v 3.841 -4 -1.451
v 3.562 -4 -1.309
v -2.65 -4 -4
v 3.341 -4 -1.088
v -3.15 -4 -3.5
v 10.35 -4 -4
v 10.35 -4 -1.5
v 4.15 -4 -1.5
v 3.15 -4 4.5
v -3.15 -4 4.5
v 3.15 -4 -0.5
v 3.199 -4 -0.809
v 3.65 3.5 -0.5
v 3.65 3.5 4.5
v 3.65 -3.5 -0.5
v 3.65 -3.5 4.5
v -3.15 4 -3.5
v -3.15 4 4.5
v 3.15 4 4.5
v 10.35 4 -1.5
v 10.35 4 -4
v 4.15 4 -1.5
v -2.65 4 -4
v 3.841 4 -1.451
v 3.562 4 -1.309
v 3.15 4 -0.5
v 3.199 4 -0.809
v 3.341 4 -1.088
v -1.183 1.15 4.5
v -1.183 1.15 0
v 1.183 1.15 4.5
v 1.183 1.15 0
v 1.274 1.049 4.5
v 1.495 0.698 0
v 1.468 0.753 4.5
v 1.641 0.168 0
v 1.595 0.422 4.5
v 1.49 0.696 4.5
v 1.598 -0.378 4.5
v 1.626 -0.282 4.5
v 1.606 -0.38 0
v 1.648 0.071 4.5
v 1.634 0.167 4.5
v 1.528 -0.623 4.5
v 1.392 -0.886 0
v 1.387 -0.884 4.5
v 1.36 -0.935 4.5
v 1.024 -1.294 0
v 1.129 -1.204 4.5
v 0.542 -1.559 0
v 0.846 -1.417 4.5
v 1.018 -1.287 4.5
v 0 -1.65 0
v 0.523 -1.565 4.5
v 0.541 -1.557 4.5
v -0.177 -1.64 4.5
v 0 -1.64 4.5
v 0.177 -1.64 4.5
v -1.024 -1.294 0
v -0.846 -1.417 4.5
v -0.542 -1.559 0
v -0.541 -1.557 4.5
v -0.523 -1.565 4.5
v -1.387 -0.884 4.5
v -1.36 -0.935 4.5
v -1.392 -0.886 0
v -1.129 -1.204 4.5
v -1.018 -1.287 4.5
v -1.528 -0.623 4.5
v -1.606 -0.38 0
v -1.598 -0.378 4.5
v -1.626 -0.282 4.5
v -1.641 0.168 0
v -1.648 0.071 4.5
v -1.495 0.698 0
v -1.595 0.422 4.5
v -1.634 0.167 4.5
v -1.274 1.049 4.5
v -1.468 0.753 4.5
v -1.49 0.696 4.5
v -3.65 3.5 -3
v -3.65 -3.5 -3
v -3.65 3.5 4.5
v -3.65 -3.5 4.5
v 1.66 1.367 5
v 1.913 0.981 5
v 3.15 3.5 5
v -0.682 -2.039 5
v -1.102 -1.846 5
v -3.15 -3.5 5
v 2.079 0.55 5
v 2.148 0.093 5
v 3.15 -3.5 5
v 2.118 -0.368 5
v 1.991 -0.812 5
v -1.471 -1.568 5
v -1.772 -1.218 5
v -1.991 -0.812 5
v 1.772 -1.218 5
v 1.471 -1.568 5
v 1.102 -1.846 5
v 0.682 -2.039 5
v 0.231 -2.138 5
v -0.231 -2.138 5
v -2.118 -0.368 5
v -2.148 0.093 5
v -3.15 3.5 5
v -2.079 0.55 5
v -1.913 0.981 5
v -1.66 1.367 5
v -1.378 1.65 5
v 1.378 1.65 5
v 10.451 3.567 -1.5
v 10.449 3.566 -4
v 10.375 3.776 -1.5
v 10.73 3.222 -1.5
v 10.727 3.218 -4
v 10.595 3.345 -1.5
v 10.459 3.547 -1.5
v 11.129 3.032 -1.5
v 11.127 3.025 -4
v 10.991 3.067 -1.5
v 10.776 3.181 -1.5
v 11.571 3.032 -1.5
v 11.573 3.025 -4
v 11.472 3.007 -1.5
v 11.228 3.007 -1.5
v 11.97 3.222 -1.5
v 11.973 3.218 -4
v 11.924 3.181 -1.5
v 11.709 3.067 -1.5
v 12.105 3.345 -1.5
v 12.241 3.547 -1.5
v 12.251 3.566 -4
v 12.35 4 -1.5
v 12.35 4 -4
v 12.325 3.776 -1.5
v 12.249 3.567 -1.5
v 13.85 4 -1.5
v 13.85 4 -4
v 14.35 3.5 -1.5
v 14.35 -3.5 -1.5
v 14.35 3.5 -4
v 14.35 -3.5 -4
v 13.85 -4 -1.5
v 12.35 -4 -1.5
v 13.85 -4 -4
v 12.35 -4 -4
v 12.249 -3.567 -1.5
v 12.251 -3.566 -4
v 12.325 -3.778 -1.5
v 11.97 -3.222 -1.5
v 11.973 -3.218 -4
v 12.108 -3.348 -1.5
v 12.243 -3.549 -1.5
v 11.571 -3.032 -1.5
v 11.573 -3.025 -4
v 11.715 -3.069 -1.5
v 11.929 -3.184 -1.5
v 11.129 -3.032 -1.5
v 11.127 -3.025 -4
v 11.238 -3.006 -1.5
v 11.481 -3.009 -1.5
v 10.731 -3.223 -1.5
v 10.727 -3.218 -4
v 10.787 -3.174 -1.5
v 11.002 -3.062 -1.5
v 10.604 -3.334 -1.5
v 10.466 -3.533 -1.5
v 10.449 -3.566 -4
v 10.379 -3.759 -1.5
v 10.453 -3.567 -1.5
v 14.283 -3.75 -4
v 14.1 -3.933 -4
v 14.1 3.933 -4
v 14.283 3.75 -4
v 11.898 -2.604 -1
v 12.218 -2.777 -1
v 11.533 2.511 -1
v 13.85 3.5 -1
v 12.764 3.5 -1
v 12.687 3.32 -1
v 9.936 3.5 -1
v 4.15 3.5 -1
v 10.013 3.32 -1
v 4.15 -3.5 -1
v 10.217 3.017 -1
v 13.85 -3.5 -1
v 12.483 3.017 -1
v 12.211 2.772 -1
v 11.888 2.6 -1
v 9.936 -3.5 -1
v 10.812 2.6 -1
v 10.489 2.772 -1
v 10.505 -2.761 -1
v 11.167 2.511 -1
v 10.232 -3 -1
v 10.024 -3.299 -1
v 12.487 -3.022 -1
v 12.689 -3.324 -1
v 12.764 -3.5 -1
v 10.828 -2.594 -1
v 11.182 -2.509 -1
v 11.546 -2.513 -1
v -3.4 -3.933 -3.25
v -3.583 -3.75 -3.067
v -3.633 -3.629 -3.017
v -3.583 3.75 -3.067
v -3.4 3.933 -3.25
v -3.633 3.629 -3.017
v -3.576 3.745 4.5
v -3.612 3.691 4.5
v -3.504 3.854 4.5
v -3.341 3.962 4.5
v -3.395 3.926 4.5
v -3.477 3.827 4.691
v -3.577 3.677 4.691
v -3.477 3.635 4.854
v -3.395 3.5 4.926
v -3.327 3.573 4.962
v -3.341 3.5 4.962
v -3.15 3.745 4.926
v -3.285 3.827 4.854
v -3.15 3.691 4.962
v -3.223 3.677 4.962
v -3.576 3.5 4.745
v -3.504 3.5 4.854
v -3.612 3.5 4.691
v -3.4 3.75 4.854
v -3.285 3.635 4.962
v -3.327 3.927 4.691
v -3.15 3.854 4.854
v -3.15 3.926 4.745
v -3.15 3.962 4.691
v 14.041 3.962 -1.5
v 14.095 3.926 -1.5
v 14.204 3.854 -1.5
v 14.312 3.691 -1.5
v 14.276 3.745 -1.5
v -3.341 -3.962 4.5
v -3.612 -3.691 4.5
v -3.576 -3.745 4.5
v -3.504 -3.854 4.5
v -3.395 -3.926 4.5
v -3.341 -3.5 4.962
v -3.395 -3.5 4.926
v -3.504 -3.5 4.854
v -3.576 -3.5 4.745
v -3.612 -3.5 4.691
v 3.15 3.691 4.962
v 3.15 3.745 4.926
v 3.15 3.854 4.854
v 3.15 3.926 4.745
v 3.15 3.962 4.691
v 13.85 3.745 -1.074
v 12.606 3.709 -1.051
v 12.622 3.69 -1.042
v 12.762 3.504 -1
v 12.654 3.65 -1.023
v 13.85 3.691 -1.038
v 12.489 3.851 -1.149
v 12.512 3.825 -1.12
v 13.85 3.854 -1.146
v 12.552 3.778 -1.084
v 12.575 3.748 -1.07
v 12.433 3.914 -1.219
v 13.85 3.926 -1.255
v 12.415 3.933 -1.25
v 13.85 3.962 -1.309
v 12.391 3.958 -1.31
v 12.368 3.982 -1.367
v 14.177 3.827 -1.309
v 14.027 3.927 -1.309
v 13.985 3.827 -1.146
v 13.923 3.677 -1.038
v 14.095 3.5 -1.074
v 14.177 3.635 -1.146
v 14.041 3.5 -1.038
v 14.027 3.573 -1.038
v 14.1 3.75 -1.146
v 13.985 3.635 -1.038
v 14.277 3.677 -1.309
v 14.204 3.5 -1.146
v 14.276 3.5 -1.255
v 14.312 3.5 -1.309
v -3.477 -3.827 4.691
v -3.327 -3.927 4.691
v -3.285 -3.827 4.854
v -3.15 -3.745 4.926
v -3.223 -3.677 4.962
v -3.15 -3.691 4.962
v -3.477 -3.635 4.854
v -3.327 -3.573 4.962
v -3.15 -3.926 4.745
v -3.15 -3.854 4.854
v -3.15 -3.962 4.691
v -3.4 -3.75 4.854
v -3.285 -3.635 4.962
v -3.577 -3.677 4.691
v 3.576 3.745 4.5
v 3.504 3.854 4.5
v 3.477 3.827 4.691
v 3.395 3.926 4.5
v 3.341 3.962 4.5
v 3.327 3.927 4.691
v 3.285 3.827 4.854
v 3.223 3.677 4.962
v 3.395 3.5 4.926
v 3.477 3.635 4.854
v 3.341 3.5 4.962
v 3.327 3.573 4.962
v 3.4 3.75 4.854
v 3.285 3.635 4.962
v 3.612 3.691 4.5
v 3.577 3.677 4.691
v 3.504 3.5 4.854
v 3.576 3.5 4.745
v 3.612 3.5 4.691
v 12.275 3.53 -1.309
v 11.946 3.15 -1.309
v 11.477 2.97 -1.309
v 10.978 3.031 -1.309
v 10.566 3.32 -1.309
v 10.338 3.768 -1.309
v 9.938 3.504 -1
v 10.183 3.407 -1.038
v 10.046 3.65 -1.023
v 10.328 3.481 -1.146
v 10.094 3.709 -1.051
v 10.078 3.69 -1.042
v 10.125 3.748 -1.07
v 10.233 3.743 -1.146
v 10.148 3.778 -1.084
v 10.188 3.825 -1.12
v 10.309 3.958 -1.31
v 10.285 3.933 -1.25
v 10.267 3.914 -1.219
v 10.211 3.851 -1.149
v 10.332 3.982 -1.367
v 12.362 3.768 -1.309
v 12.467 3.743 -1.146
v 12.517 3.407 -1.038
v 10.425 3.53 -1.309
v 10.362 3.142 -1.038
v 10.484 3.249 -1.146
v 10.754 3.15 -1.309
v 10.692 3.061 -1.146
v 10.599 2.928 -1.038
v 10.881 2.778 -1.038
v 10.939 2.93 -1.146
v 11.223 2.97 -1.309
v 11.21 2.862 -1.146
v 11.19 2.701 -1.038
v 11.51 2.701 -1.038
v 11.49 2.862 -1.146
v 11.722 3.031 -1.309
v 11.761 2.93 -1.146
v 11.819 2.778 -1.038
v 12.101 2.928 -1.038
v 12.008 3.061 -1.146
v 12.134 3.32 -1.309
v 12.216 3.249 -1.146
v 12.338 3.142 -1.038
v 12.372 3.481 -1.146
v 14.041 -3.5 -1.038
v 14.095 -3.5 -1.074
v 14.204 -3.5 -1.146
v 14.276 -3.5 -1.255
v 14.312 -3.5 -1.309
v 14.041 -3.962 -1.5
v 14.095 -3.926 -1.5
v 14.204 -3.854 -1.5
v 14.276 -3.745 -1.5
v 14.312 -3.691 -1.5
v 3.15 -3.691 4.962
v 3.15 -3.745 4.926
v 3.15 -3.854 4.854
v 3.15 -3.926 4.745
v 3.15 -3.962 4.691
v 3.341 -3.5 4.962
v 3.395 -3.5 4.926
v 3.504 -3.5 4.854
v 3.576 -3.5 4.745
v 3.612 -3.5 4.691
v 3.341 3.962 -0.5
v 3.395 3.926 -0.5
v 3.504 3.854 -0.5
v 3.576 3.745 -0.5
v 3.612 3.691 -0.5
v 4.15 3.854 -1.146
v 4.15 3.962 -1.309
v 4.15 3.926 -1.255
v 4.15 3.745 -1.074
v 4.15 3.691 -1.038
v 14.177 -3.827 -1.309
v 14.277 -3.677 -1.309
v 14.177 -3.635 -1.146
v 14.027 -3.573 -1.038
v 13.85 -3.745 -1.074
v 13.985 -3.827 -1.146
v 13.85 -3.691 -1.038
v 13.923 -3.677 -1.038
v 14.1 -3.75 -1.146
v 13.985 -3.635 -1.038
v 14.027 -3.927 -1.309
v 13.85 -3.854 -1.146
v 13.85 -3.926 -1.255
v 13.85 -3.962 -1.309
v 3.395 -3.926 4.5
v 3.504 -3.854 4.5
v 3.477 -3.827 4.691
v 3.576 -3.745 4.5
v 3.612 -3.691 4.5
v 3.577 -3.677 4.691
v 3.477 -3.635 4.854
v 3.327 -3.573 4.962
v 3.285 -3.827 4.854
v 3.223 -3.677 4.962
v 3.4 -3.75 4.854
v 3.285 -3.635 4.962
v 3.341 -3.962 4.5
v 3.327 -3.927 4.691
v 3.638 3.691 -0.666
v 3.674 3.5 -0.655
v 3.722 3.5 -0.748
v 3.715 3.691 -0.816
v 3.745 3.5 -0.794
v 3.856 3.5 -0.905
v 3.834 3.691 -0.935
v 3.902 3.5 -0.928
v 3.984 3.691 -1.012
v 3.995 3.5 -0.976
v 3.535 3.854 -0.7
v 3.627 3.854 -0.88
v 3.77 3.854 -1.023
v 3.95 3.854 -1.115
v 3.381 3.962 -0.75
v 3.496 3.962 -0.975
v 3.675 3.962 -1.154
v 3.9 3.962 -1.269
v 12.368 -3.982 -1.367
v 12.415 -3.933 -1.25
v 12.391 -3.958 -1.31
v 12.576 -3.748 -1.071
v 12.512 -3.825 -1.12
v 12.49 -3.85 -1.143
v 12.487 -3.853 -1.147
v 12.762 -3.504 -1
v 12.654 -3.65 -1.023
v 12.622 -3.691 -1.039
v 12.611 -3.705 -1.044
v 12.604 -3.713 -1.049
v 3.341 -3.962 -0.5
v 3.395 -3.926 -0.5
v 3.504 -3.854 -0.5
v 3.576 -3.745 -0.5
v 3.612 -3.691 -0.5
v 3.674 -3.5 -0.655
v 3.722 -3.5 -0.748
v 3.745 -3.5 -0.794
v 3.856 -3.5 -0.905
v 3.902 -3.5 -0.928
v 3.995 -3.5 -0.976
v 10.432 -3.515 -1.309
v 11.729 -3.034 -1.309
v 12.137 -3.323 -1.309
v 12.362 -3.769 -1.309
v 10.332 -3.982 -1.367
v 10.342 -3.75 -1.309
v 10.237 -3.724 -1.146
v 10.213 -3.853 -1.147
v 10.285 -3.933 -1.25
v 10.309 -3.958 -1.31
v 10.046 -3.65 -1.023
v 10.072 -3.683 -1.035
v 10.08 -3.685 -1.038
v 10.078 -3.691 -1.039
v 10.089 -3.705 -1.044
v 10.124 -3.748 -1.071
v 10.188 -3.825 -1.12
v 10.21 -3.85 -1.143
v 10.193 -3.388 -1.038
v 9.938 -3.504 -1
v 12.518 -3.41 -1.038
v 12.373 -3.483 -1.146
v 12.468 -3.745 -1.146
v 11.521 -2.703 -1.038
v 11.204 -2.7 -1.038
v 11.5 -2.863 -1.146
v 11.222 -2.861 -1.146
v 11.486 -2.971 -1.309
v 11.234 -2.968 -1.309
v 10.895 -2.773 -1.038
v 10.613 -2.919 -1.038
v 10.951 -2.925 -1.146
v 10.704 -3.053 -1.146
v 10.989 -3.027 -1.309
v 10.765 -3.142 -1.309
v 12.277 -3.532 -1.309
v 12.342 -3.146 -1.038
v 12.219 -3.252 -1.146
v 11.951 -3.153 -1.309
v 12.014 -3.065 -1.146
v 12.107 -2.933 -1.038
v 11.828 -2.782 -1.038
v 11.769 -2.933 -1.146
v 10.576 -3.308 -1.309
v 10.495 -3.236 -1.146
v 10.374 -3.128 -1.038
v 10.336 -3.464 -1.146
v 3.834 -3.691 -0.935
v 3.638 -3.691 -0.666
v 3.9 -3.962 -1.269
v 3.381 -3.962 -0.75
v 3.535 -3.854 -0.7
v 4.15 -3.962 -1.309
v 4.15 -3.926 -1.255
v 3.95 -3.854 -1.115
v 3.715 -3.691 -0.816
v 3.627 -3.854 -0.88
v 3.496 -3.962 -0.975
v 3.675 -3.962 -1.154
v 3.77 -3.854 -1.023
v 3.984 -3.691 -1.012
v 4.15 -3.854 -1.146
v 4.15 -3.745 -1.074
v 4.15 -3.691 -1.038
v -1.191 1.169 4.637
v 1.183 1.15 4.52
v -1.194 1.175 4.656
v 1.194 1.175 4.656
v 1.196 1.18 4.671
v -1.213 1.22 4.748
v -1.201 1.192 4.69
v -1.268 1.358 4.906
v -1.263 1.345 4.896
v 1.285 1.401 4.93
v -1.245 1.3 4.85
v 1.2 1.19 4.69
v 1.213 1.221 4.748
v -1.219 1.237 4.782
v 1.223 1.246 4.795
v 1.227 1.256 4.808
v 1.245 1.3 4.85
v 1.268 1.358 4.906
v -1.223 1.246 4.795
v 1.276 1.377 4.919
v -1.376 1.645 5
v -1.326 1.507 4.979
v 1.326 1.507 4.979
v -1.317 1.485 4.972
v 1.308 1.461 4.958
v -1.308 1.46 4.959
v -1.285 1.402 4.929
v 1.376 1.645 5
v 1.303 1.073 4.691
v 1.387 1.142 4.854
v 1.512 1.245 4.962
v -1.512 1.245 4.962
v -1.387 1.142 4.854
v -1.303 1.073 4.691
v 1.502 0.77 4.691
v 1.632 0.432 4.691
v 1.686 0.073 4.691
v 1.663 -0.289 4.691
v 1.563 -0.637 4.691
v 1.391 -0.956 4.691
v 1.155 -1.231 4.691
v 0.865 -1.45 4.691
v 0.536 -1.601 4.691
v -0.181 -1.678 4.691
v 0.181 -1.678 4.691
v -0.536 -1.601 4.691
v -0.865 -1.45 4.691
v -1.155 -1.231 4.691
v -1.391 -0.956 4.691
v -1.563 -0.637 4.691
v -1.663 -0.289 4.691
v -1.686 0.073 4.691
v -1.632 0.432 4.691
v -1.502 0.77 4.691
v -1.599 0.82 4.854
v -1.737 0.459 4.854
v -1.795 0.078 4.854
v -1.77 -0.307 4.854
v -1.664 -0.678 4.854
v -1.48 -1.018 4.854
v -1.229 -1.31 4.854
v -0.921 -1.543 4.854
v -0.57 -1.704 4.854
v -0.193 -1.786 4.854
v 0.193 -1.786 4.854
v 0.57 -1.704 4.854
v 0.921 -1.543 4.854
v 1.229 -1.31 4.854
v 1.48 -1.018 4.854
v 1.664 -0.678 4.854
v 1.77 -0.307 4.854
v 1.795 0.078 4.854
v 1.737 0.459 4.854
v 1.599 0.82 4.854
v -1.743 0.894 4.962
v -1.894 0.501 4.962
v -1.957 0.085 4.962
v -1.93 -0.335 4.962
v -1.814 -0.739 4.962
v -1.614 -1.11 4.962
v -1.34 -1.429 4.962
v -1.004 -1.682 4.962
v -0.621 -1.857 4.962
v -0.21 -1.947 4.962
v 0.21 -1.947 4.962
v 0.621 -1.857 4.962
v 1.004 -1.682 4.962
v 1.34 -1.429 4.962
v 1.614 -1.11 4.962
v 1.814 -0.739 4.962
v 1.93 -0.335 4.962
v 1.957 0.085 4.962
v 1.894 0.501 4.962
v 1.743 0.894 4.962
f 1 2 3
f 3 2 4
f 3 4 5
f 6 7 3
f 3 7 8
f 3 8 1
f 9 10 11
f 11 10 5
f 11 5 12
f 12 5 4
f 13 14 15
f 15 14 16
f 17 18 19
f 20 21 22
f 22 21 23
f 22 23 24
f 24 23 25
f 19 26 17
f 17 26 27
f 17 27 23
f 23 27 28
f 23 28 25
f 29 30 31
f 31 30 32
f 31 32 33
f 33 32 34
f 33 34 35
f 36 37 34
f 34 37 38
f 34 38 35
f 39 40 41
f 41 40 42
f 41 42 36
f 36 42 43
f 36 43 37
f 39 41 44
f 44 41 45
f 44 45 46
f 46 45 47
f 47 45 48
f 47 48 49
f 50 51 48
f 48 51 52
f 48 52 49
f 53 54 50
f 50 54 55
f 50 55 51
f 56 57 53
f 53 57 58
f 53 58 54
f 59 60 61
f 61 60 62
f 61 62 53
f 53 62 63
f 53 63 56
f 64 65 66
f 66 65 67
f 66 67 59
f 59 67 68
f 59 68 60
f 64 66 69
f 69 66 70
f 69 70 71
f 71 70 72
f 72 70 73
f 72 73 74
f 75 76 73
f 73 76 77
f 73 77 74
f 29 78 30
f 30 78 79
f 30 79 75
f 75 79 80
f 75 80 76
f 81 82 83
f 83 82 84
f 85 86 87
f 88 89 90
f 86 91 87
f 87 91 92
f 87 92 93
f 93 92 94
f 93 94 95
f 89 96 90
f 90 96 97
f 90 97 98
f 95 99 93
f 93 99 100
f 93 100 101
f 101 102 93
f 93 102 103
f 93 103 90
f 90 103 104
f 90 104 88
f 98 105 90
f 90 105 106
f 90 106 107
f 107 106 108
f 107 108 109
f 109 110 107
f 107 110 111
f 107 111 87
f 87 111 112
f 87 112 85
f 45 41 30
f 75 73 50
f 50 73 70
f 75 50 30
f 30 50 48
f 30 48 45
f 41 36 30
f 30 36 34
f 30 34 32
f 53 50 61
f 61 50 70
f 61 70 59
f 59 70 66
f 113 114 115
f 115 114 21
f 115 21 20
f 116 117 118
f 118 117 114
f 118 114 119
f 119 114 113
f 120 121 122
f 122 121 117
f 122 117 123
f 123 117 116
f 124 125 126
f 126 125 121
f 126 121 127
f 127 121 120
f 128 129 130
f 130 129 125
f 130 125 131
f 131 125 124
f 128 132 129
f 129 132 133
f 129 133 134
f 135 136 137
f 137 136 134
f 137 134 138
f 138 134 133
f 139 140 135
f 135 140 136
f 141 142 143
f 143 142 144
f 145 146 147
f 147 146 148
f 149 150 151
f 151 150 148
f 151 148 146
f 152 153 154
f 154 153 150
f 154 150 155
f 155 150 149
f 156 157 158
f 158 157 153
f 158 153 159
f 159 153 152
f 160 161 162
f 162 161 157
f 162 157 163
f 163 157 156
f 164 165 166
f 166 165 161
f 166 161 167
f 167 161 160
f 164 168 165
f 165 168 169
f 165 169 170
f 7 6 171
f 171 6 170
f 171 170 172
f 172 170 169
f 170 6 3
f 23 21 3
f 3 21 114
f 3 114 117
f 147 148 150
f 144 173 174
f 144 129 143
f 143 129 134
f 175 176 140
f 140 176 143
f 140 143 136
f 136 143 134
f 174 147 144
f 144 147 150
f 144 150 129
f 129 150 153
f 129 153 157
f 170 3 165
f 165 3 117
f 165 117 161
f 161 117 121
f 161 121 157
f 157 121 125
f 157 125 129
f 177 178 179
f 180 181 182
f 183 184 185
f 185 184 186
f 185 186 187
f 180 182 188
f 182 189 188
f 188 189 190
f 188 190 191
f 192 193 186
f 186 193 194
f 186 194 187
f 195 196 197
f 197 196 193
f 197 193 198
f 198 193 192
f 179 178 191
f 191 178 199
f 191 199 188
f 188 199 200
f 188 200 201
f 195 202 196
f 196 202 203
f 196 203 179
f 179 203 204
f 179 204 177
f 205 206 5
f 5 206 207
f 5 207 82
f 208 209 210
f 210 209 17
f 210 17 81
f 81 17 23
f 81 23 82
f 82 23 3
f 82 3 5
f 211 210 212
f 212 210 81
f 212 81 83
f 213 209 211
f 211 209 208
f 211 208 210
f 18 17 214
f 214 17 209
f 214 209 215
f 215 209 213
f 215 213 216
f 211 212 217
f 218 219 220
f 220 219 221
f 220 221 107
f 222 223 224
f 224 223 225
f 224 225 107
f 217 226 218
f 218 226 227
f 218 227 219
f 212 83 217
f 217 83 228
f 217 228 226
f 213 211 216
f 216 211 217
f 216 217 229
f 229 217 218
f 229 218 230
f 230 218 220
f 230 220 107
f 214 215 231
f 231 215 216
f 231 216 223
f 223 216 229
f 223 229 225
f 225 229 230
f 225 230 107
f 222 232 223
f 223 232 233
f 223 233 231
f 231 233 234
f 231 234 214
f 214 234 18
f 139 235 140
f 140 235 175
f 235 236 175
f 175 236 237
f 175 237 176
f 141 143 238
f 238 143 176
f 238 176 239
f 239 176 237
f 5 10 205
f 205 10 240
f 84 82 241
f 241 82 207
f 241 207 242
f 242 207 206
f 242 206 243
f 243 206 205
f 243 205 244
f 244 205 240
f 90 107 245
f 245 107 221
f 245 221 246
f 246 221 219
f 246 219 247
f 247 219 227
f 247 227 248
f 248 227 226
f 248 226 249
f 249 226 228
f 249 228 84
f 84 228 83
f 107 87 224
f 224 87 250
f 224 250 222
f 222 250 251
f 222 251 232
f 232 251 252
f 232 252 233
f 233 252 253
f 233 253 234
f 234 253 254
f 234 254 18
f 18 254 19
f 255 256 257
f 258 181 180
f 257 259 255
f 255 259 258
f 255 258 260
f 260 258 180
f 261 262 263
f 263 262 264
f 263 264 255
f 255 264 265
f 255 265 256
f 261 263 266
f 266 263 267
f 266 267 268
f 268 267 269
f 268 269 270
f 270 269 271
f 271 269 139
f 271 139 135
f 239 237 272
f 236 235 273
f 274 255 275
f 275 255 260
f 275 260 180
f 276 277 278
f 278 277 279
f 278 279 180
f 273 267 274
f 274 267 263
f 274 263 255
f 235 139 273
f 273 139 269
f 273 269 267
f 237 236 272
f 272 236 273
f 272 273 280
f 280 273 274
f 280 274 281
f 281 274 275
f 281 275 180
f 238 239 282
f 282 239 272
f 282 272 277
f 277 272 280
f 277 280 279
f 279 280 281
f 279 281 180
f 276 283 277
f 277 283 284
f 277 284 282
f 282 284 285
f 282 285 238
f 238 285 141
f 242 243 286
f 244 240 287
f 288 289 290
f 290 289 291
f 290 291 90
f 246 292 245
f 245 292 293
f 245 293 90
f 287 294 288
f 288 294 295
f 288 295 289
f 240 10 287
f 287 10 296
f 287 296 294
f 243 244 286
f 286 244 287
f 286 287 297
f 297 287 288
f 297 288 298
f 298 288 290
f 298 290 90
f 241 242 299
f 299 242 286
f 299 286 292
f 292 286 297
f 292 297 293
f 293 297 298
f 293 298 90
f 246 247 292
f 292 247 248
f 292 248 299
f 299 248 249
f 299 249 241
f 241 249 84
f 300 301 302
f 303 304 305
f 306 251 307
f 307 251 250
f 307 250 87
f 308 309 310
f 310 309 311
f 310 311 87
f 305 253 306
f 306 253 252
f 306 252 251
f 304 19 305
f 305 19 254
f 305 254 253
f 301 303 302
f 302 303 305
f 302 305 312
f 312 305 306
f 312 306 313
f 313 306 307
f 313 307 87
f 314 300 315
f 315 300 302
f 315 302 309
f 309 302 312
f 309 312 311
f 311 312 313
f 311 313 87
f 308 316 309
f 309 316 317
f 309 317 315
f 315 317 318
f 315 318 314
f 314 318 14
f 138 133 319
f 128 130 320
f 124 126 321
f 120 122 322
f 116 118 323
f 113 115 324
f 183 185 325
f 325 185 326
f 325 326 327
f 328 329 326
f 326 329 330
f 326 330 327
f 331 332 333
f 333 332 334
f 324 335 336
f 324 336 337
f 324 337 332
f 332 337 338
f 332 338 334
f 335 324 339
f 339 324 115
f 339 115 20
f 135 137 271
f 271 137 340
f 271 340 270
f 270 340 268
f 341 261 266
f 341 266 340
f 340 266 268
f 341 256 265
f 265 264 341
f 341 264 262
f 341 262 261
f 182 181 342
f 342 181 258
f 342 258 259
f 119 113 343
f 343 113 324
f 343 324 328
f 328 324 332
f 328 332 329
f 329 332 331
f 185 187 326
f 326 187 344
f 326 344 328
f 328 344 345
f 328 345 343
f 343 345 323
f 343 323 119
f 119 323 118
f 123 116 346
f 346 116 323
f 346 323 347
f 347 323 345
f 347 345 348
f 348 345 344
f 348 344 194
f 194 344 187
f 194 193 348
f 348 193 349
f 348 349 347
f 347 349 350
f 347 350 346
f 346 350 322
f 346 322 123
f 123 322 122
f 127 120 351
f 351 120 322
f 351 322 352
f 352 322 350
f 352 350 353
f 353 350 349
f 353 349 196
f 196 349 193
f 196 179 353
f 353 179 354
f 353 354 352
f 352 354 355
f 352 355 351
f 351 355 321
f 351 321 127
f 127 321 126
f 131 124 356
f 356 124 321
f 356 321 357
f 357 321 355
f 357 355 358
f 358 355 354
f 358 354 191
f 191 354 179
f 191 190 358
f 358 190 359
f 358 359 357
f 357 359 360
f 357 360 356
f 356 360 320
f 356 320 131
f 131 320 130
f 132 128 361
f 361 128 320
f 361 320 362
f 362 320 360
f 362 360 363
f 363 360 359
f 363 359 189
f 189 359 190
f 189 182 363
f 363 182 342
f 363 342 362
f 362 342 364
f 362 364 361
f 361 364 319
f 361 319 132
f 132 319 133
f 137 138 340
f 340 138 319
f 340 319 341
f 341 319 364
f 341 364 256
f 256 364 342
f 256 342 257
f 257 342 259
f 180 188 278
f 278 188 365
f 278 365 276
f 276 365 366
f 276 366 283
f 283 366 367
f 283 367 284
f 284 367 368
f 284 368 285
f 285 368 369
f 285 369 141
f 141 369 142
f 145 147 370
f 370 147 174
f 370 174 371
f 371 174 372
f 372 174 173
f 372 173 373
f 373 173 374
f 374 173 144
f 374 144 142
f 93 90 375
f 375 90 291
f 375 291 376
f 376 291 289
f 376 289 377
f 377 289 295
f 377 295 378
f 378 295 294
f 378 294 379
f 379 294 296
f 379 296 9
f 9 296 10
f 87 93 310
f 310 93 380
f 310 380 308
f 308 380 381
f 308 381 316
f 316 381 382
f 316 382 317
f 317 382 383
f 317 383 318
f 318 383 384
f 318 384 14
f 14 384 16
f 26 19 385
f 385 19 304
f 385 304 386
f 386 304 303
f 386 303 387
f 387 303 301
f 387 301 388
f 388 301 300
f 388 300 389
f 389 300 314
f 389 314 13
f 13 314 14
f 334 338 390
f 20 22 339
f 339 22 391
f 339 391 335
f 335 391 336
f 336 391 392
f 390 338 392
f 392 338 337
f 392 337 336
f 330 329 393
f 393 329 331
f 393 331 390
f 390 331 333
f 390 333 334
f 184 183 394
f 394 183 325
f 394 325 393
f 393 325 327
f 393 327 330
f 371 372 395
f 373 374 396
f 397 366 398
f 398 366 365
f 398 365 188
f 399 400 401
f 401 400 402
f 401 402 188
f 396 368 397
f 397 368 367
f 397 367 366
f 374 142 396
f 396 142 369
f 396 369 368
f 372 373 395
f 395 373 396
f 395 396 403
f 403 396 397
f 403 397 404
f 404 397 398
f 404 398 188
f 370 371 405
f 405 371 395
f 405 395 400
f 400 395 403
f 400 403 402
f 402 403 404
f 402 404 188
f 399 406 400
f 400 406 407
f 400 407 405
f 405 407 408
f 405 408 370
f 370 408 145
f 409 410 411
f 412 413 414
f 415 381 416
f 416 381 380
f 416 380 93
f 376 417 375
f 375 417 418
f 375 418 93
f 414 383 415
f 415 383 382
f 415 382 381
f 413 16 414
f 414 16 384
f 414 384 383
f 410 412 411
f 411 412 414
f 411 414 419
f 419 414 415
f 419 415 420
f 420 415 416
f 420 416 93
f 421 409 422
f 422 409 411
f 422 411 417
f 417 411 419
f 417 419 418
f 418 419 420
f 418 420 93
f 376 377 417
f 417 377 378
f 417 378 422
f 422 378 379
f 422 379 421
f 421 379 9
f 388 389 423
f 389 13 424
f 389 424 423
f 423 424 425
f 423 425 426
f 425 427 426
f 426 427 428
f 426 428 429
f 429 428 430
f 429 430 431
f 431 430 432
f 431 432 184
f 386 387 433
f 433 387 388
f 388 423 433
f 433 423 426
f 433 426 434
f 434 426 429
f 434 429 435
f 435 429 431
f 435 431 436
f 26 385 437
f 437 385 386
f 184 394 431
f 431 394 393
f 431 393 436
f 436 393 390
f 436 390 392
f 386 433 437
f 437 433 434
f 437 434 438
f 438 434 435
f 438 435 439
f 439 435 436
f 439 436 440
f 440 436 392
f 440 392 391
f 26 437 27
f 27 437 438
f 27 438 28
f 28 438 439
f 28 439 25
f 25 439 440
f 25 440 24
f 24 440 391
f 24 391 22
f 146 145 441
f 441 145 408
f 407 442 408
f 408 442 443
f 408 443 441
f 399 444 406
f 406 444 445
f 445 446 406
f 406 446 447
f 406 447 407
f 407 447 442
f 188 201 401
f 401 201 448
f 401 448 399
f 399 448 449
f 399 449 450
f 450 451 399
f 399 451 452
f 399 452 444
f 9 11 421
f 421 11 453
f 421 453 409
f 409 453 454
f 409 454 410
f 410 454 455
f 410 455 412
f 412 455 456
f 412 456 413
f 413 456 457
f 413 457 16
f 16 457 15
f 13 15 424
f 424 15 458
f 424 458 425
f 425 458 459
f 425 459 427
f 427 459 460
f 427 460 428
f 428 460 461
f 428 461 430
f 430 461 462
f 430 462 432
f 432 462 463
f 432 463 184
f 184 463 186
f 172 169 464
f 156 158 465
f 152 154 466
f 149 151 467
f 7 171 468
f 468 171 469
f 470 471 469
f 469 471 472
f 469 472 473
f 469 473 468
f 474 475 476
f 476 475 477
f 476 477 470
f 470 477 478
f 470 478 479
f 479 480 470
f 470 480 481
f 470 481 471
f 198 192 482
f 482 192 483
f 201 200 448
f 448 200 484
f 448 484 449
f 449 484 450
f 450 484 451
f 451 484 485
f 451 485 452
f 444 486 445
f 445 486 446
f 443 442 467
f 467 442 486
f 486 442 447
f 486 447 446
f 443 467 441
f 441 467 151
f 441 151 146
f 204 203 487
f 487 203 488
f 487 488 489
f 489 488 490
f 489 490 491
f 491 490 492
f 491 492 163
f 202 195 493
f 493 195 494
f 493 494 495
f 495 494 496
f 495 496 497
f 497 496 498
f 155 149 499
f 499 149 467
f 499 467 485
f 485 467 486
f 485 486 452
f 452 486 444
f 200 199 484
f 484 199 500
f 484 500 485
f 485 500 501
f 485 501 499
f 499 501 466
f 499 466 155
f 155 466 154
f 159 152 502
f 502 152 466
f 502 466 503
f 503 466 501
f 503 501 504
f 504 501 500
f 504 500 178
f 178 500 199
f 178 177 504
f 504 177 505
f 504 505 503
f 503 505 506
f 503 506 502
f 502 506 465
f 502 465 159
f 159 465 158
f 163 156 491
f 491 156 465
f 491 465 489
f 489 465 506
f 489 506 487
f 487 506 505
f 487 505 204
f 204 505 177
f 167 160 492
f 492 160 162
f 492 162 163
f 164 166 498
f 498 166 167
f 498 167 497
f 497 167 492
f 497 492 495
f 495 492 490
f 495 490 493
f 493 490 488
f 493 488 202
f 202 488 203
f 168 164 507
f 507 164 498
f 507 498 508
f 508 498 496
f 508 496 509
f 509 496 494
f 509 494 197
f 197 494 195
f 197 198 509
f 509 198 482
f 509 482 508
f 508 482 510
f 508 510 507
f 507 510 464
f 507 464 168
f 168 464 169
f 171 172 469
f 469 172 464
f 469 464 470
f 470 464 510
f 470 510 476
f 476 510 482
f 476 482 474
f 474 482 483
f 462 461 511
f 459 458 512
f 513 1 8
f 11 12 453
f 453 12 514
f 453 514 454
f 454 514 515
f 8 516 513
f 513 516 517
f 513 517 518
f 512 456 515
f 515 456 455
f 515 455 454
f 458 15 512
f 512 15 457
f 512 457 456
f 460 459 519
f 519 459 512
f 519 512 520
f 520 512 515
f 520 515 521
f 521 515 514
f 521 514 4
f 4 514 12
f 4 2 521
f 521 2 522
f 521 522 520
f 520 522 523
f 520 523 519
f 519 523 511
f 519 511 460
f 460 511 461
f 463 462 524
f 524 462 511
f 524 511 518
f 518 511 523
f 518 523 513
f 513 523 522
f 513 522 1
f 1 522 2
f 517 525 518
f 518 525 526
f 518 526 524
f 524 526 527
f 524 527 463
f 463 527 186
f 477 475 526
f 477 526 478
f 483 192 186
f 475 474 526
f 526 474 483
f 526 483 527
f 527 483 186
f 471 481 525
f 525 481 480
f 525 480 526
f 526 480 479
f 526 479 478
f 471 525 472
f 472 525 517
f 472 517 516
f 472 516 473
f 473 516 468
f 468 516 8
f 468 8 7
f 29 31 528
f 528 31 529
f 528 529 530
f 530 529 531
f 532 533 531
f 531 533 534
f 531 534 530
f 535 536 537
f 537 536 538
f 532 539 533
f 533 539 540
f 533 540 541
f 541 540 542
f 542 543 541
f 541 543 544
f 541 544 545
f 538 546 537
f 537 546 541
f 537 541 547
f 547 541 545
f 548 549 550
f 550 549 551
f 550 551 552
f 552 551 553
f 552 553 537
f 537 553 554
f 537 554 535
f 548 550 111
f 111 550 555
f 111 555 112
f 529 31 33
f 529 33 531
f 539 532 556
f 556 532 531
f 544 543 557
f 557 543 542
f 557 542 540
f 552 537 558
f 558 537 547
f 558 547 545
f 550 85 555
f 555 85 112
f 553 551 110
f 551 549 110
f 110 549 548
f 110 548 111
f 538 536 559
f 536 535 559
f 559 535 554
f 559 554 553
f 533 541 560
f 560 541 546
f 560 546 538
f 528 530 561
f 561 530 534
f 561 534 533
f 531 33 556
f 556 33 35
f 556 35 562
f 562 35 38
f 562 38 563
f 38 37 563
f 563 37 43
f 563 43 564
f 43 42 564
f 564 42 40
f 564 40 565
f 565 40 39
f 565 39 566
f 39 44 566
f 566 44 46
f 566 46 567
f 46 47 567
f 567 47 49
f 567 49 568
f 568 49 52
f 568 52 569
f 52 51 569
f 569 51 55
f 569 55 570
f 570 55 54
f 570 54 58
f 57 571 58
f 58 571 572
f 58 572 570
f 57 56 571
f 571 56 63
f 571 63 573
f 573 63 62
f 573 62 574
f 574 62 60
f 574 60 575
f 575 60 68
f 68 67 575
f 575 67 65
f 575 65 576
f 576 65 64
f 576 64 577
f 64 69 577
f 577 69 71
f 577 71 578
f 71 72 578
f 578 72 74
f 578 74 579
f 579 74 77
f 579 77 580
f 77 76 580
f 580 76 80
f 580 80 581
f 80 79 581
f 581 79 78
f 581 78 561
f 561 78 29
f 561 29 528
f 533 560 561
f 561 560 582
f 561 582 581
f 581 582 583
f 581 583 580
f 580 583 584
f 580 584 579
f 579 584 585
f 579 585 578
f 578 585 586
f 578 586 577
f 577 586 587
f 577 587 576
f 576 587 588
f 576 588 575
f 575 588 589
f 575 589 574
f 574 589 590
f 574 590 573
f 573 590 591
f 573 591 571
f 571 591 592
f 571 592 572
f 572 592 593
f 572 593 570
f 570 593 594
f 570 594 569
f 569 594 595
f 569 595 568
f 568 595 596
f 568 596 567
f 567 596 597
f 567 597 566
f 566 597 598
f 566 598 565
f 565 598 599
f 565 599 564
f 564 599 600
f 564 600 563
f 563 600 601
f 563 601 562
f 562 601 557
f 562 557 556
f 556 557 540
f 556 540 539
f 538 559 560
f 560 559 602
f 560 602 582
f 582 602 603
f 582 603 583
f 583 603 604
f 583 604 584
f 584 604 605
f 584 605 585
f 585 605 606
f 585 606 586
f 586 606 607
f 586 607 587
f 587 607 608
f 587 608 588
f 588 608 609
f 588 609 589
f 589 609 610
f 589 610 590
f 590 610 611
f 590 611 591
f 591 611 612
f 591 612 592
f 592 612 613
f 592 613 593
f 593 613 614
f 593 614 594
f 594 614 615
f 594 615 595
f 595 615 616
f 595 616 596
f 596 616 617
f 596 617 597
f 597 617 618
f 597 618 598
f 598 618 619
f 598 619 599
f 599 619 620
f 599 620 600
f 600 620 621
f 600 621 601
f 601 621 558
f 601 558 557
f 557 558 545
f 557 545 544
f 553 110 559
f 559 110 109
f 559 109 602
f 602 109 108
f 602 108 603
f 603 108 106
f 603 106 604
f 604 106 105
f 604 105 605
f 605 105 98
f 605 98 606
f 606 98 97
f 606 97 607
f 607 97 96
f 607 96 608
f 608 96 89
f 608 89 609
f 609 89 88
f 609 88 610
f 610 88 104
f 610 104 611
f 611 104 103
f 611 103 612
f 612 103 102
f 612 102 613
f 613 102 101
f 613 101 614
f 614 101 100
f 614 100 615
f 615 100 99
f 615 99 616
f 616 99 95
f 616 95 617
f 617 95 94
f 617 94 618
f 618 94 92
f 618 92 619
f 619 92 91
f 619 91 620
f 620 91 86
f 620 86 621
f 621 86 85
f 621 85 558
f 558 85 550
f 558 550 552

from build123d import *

# Parameters (mm, degrees)
SKETCH1_W           = 7.3
SKETCH1_H           = 8
BOSS_EXTRUDE1_DEPTH = 5
SKETCH1_3_W         = 7.3
SKETCH1_3_H         = 8
BOSS_EXTRUDE2_DEPTH = 1
BOSS_EXTRUDE3_DEPTH = 3
CHAMFER1_SIZE       = 1
FILLET1_R           = 0.5


with BuildPart() as part:
    # Sketch1 → Boss-Extrude1 (new body)
    with BuildSketch(Plane.XY):
        Rectangle(SKETCH1_W, SKETCH1_H)
        with BuildLine():
            Line((-1.183215957, 1.15), (1.183215957, 1.15))
            ThreePointArc((1.183215957, 1.15), (0, -1.65), (-1.183215957, 1.15))
        make_face(mode=Mode.SUBTRACT)
    extrude(amount=BOSS_EXTRUDE1_DEPTH)

    # Sketch1<3> → Boss-Extrude2 (add)
    with BuildSketch(Plane.XY):
        Rectangle(SKETCH1_3_W, SKETCH1_3_H)
    extrude(amount=-BOSS_EXTRUDE2_DEPTH)

    # Sketch2 → Boss-Extrude3 (add)
    with BuildSketch(Plane(origin=(0, 0, -1), x_dir=(-1, 0, 0), z_dir=(0, 0, -1))):
        with BuildLine():
            Line((3.65, -4), (3.65, 4))
            Line((3.65, 4), (-10.35, 4))
            ThreePointArc((-10.35, 4), (-11.35, 3), (-12.35, 4))
            Line((-12.35, 4), (-14.35, 4))
            Line((-14.35, 4), (-14.35, -4))
            Line((-14.35, -4), (-12.35, -4))
            ThreePointArc((-12.35, -4), (-11.35, -3), (-10.35, -4))
            Line((-10.35, -4), (3.65, -4))
        make_face()
    extrude(amount=BOSS_EXTRUDE3_DEPTH)

    # Chamfer1
    chamfer1_edges = [part.edges().sort_by_distance(p)[0] for p in [
        (-3.65, 0, -4),
    ]]
    chamfer(chamfer1_edges, length=CHAMFER1_SIZE)

    # Fillet1
    fillet1_edges = [part.edges().sort_by_distance(p)[0] for p in [
        (-3.65, -4, 1),
        (-3.65, 4, 1),
        (3.65, 4, 2),
        (3.65, -4, 2),
        (0, -4, 5),
        (3.65, 0, 5),
        (0, 4, 5),
        (3.65, 0, -1),
        (-3.65, 0, 5),
        (7, 4, -1),
        (11.35, 3, -1),
        (13.35, 4, -1),
        (14.35, 0, -1),
        (14.35, 4, -2.5),
        (14.35, -4, -2.5),
        (7, -4, -1),
        (11.35, -3, -1),
        (13.35, -4, -1),
        (0, 1.15, 5),
        (0, -1.65, 5),
    ]]
    fillet(fillet1_edges, radius=FILLET1_R)


solid = part.part
